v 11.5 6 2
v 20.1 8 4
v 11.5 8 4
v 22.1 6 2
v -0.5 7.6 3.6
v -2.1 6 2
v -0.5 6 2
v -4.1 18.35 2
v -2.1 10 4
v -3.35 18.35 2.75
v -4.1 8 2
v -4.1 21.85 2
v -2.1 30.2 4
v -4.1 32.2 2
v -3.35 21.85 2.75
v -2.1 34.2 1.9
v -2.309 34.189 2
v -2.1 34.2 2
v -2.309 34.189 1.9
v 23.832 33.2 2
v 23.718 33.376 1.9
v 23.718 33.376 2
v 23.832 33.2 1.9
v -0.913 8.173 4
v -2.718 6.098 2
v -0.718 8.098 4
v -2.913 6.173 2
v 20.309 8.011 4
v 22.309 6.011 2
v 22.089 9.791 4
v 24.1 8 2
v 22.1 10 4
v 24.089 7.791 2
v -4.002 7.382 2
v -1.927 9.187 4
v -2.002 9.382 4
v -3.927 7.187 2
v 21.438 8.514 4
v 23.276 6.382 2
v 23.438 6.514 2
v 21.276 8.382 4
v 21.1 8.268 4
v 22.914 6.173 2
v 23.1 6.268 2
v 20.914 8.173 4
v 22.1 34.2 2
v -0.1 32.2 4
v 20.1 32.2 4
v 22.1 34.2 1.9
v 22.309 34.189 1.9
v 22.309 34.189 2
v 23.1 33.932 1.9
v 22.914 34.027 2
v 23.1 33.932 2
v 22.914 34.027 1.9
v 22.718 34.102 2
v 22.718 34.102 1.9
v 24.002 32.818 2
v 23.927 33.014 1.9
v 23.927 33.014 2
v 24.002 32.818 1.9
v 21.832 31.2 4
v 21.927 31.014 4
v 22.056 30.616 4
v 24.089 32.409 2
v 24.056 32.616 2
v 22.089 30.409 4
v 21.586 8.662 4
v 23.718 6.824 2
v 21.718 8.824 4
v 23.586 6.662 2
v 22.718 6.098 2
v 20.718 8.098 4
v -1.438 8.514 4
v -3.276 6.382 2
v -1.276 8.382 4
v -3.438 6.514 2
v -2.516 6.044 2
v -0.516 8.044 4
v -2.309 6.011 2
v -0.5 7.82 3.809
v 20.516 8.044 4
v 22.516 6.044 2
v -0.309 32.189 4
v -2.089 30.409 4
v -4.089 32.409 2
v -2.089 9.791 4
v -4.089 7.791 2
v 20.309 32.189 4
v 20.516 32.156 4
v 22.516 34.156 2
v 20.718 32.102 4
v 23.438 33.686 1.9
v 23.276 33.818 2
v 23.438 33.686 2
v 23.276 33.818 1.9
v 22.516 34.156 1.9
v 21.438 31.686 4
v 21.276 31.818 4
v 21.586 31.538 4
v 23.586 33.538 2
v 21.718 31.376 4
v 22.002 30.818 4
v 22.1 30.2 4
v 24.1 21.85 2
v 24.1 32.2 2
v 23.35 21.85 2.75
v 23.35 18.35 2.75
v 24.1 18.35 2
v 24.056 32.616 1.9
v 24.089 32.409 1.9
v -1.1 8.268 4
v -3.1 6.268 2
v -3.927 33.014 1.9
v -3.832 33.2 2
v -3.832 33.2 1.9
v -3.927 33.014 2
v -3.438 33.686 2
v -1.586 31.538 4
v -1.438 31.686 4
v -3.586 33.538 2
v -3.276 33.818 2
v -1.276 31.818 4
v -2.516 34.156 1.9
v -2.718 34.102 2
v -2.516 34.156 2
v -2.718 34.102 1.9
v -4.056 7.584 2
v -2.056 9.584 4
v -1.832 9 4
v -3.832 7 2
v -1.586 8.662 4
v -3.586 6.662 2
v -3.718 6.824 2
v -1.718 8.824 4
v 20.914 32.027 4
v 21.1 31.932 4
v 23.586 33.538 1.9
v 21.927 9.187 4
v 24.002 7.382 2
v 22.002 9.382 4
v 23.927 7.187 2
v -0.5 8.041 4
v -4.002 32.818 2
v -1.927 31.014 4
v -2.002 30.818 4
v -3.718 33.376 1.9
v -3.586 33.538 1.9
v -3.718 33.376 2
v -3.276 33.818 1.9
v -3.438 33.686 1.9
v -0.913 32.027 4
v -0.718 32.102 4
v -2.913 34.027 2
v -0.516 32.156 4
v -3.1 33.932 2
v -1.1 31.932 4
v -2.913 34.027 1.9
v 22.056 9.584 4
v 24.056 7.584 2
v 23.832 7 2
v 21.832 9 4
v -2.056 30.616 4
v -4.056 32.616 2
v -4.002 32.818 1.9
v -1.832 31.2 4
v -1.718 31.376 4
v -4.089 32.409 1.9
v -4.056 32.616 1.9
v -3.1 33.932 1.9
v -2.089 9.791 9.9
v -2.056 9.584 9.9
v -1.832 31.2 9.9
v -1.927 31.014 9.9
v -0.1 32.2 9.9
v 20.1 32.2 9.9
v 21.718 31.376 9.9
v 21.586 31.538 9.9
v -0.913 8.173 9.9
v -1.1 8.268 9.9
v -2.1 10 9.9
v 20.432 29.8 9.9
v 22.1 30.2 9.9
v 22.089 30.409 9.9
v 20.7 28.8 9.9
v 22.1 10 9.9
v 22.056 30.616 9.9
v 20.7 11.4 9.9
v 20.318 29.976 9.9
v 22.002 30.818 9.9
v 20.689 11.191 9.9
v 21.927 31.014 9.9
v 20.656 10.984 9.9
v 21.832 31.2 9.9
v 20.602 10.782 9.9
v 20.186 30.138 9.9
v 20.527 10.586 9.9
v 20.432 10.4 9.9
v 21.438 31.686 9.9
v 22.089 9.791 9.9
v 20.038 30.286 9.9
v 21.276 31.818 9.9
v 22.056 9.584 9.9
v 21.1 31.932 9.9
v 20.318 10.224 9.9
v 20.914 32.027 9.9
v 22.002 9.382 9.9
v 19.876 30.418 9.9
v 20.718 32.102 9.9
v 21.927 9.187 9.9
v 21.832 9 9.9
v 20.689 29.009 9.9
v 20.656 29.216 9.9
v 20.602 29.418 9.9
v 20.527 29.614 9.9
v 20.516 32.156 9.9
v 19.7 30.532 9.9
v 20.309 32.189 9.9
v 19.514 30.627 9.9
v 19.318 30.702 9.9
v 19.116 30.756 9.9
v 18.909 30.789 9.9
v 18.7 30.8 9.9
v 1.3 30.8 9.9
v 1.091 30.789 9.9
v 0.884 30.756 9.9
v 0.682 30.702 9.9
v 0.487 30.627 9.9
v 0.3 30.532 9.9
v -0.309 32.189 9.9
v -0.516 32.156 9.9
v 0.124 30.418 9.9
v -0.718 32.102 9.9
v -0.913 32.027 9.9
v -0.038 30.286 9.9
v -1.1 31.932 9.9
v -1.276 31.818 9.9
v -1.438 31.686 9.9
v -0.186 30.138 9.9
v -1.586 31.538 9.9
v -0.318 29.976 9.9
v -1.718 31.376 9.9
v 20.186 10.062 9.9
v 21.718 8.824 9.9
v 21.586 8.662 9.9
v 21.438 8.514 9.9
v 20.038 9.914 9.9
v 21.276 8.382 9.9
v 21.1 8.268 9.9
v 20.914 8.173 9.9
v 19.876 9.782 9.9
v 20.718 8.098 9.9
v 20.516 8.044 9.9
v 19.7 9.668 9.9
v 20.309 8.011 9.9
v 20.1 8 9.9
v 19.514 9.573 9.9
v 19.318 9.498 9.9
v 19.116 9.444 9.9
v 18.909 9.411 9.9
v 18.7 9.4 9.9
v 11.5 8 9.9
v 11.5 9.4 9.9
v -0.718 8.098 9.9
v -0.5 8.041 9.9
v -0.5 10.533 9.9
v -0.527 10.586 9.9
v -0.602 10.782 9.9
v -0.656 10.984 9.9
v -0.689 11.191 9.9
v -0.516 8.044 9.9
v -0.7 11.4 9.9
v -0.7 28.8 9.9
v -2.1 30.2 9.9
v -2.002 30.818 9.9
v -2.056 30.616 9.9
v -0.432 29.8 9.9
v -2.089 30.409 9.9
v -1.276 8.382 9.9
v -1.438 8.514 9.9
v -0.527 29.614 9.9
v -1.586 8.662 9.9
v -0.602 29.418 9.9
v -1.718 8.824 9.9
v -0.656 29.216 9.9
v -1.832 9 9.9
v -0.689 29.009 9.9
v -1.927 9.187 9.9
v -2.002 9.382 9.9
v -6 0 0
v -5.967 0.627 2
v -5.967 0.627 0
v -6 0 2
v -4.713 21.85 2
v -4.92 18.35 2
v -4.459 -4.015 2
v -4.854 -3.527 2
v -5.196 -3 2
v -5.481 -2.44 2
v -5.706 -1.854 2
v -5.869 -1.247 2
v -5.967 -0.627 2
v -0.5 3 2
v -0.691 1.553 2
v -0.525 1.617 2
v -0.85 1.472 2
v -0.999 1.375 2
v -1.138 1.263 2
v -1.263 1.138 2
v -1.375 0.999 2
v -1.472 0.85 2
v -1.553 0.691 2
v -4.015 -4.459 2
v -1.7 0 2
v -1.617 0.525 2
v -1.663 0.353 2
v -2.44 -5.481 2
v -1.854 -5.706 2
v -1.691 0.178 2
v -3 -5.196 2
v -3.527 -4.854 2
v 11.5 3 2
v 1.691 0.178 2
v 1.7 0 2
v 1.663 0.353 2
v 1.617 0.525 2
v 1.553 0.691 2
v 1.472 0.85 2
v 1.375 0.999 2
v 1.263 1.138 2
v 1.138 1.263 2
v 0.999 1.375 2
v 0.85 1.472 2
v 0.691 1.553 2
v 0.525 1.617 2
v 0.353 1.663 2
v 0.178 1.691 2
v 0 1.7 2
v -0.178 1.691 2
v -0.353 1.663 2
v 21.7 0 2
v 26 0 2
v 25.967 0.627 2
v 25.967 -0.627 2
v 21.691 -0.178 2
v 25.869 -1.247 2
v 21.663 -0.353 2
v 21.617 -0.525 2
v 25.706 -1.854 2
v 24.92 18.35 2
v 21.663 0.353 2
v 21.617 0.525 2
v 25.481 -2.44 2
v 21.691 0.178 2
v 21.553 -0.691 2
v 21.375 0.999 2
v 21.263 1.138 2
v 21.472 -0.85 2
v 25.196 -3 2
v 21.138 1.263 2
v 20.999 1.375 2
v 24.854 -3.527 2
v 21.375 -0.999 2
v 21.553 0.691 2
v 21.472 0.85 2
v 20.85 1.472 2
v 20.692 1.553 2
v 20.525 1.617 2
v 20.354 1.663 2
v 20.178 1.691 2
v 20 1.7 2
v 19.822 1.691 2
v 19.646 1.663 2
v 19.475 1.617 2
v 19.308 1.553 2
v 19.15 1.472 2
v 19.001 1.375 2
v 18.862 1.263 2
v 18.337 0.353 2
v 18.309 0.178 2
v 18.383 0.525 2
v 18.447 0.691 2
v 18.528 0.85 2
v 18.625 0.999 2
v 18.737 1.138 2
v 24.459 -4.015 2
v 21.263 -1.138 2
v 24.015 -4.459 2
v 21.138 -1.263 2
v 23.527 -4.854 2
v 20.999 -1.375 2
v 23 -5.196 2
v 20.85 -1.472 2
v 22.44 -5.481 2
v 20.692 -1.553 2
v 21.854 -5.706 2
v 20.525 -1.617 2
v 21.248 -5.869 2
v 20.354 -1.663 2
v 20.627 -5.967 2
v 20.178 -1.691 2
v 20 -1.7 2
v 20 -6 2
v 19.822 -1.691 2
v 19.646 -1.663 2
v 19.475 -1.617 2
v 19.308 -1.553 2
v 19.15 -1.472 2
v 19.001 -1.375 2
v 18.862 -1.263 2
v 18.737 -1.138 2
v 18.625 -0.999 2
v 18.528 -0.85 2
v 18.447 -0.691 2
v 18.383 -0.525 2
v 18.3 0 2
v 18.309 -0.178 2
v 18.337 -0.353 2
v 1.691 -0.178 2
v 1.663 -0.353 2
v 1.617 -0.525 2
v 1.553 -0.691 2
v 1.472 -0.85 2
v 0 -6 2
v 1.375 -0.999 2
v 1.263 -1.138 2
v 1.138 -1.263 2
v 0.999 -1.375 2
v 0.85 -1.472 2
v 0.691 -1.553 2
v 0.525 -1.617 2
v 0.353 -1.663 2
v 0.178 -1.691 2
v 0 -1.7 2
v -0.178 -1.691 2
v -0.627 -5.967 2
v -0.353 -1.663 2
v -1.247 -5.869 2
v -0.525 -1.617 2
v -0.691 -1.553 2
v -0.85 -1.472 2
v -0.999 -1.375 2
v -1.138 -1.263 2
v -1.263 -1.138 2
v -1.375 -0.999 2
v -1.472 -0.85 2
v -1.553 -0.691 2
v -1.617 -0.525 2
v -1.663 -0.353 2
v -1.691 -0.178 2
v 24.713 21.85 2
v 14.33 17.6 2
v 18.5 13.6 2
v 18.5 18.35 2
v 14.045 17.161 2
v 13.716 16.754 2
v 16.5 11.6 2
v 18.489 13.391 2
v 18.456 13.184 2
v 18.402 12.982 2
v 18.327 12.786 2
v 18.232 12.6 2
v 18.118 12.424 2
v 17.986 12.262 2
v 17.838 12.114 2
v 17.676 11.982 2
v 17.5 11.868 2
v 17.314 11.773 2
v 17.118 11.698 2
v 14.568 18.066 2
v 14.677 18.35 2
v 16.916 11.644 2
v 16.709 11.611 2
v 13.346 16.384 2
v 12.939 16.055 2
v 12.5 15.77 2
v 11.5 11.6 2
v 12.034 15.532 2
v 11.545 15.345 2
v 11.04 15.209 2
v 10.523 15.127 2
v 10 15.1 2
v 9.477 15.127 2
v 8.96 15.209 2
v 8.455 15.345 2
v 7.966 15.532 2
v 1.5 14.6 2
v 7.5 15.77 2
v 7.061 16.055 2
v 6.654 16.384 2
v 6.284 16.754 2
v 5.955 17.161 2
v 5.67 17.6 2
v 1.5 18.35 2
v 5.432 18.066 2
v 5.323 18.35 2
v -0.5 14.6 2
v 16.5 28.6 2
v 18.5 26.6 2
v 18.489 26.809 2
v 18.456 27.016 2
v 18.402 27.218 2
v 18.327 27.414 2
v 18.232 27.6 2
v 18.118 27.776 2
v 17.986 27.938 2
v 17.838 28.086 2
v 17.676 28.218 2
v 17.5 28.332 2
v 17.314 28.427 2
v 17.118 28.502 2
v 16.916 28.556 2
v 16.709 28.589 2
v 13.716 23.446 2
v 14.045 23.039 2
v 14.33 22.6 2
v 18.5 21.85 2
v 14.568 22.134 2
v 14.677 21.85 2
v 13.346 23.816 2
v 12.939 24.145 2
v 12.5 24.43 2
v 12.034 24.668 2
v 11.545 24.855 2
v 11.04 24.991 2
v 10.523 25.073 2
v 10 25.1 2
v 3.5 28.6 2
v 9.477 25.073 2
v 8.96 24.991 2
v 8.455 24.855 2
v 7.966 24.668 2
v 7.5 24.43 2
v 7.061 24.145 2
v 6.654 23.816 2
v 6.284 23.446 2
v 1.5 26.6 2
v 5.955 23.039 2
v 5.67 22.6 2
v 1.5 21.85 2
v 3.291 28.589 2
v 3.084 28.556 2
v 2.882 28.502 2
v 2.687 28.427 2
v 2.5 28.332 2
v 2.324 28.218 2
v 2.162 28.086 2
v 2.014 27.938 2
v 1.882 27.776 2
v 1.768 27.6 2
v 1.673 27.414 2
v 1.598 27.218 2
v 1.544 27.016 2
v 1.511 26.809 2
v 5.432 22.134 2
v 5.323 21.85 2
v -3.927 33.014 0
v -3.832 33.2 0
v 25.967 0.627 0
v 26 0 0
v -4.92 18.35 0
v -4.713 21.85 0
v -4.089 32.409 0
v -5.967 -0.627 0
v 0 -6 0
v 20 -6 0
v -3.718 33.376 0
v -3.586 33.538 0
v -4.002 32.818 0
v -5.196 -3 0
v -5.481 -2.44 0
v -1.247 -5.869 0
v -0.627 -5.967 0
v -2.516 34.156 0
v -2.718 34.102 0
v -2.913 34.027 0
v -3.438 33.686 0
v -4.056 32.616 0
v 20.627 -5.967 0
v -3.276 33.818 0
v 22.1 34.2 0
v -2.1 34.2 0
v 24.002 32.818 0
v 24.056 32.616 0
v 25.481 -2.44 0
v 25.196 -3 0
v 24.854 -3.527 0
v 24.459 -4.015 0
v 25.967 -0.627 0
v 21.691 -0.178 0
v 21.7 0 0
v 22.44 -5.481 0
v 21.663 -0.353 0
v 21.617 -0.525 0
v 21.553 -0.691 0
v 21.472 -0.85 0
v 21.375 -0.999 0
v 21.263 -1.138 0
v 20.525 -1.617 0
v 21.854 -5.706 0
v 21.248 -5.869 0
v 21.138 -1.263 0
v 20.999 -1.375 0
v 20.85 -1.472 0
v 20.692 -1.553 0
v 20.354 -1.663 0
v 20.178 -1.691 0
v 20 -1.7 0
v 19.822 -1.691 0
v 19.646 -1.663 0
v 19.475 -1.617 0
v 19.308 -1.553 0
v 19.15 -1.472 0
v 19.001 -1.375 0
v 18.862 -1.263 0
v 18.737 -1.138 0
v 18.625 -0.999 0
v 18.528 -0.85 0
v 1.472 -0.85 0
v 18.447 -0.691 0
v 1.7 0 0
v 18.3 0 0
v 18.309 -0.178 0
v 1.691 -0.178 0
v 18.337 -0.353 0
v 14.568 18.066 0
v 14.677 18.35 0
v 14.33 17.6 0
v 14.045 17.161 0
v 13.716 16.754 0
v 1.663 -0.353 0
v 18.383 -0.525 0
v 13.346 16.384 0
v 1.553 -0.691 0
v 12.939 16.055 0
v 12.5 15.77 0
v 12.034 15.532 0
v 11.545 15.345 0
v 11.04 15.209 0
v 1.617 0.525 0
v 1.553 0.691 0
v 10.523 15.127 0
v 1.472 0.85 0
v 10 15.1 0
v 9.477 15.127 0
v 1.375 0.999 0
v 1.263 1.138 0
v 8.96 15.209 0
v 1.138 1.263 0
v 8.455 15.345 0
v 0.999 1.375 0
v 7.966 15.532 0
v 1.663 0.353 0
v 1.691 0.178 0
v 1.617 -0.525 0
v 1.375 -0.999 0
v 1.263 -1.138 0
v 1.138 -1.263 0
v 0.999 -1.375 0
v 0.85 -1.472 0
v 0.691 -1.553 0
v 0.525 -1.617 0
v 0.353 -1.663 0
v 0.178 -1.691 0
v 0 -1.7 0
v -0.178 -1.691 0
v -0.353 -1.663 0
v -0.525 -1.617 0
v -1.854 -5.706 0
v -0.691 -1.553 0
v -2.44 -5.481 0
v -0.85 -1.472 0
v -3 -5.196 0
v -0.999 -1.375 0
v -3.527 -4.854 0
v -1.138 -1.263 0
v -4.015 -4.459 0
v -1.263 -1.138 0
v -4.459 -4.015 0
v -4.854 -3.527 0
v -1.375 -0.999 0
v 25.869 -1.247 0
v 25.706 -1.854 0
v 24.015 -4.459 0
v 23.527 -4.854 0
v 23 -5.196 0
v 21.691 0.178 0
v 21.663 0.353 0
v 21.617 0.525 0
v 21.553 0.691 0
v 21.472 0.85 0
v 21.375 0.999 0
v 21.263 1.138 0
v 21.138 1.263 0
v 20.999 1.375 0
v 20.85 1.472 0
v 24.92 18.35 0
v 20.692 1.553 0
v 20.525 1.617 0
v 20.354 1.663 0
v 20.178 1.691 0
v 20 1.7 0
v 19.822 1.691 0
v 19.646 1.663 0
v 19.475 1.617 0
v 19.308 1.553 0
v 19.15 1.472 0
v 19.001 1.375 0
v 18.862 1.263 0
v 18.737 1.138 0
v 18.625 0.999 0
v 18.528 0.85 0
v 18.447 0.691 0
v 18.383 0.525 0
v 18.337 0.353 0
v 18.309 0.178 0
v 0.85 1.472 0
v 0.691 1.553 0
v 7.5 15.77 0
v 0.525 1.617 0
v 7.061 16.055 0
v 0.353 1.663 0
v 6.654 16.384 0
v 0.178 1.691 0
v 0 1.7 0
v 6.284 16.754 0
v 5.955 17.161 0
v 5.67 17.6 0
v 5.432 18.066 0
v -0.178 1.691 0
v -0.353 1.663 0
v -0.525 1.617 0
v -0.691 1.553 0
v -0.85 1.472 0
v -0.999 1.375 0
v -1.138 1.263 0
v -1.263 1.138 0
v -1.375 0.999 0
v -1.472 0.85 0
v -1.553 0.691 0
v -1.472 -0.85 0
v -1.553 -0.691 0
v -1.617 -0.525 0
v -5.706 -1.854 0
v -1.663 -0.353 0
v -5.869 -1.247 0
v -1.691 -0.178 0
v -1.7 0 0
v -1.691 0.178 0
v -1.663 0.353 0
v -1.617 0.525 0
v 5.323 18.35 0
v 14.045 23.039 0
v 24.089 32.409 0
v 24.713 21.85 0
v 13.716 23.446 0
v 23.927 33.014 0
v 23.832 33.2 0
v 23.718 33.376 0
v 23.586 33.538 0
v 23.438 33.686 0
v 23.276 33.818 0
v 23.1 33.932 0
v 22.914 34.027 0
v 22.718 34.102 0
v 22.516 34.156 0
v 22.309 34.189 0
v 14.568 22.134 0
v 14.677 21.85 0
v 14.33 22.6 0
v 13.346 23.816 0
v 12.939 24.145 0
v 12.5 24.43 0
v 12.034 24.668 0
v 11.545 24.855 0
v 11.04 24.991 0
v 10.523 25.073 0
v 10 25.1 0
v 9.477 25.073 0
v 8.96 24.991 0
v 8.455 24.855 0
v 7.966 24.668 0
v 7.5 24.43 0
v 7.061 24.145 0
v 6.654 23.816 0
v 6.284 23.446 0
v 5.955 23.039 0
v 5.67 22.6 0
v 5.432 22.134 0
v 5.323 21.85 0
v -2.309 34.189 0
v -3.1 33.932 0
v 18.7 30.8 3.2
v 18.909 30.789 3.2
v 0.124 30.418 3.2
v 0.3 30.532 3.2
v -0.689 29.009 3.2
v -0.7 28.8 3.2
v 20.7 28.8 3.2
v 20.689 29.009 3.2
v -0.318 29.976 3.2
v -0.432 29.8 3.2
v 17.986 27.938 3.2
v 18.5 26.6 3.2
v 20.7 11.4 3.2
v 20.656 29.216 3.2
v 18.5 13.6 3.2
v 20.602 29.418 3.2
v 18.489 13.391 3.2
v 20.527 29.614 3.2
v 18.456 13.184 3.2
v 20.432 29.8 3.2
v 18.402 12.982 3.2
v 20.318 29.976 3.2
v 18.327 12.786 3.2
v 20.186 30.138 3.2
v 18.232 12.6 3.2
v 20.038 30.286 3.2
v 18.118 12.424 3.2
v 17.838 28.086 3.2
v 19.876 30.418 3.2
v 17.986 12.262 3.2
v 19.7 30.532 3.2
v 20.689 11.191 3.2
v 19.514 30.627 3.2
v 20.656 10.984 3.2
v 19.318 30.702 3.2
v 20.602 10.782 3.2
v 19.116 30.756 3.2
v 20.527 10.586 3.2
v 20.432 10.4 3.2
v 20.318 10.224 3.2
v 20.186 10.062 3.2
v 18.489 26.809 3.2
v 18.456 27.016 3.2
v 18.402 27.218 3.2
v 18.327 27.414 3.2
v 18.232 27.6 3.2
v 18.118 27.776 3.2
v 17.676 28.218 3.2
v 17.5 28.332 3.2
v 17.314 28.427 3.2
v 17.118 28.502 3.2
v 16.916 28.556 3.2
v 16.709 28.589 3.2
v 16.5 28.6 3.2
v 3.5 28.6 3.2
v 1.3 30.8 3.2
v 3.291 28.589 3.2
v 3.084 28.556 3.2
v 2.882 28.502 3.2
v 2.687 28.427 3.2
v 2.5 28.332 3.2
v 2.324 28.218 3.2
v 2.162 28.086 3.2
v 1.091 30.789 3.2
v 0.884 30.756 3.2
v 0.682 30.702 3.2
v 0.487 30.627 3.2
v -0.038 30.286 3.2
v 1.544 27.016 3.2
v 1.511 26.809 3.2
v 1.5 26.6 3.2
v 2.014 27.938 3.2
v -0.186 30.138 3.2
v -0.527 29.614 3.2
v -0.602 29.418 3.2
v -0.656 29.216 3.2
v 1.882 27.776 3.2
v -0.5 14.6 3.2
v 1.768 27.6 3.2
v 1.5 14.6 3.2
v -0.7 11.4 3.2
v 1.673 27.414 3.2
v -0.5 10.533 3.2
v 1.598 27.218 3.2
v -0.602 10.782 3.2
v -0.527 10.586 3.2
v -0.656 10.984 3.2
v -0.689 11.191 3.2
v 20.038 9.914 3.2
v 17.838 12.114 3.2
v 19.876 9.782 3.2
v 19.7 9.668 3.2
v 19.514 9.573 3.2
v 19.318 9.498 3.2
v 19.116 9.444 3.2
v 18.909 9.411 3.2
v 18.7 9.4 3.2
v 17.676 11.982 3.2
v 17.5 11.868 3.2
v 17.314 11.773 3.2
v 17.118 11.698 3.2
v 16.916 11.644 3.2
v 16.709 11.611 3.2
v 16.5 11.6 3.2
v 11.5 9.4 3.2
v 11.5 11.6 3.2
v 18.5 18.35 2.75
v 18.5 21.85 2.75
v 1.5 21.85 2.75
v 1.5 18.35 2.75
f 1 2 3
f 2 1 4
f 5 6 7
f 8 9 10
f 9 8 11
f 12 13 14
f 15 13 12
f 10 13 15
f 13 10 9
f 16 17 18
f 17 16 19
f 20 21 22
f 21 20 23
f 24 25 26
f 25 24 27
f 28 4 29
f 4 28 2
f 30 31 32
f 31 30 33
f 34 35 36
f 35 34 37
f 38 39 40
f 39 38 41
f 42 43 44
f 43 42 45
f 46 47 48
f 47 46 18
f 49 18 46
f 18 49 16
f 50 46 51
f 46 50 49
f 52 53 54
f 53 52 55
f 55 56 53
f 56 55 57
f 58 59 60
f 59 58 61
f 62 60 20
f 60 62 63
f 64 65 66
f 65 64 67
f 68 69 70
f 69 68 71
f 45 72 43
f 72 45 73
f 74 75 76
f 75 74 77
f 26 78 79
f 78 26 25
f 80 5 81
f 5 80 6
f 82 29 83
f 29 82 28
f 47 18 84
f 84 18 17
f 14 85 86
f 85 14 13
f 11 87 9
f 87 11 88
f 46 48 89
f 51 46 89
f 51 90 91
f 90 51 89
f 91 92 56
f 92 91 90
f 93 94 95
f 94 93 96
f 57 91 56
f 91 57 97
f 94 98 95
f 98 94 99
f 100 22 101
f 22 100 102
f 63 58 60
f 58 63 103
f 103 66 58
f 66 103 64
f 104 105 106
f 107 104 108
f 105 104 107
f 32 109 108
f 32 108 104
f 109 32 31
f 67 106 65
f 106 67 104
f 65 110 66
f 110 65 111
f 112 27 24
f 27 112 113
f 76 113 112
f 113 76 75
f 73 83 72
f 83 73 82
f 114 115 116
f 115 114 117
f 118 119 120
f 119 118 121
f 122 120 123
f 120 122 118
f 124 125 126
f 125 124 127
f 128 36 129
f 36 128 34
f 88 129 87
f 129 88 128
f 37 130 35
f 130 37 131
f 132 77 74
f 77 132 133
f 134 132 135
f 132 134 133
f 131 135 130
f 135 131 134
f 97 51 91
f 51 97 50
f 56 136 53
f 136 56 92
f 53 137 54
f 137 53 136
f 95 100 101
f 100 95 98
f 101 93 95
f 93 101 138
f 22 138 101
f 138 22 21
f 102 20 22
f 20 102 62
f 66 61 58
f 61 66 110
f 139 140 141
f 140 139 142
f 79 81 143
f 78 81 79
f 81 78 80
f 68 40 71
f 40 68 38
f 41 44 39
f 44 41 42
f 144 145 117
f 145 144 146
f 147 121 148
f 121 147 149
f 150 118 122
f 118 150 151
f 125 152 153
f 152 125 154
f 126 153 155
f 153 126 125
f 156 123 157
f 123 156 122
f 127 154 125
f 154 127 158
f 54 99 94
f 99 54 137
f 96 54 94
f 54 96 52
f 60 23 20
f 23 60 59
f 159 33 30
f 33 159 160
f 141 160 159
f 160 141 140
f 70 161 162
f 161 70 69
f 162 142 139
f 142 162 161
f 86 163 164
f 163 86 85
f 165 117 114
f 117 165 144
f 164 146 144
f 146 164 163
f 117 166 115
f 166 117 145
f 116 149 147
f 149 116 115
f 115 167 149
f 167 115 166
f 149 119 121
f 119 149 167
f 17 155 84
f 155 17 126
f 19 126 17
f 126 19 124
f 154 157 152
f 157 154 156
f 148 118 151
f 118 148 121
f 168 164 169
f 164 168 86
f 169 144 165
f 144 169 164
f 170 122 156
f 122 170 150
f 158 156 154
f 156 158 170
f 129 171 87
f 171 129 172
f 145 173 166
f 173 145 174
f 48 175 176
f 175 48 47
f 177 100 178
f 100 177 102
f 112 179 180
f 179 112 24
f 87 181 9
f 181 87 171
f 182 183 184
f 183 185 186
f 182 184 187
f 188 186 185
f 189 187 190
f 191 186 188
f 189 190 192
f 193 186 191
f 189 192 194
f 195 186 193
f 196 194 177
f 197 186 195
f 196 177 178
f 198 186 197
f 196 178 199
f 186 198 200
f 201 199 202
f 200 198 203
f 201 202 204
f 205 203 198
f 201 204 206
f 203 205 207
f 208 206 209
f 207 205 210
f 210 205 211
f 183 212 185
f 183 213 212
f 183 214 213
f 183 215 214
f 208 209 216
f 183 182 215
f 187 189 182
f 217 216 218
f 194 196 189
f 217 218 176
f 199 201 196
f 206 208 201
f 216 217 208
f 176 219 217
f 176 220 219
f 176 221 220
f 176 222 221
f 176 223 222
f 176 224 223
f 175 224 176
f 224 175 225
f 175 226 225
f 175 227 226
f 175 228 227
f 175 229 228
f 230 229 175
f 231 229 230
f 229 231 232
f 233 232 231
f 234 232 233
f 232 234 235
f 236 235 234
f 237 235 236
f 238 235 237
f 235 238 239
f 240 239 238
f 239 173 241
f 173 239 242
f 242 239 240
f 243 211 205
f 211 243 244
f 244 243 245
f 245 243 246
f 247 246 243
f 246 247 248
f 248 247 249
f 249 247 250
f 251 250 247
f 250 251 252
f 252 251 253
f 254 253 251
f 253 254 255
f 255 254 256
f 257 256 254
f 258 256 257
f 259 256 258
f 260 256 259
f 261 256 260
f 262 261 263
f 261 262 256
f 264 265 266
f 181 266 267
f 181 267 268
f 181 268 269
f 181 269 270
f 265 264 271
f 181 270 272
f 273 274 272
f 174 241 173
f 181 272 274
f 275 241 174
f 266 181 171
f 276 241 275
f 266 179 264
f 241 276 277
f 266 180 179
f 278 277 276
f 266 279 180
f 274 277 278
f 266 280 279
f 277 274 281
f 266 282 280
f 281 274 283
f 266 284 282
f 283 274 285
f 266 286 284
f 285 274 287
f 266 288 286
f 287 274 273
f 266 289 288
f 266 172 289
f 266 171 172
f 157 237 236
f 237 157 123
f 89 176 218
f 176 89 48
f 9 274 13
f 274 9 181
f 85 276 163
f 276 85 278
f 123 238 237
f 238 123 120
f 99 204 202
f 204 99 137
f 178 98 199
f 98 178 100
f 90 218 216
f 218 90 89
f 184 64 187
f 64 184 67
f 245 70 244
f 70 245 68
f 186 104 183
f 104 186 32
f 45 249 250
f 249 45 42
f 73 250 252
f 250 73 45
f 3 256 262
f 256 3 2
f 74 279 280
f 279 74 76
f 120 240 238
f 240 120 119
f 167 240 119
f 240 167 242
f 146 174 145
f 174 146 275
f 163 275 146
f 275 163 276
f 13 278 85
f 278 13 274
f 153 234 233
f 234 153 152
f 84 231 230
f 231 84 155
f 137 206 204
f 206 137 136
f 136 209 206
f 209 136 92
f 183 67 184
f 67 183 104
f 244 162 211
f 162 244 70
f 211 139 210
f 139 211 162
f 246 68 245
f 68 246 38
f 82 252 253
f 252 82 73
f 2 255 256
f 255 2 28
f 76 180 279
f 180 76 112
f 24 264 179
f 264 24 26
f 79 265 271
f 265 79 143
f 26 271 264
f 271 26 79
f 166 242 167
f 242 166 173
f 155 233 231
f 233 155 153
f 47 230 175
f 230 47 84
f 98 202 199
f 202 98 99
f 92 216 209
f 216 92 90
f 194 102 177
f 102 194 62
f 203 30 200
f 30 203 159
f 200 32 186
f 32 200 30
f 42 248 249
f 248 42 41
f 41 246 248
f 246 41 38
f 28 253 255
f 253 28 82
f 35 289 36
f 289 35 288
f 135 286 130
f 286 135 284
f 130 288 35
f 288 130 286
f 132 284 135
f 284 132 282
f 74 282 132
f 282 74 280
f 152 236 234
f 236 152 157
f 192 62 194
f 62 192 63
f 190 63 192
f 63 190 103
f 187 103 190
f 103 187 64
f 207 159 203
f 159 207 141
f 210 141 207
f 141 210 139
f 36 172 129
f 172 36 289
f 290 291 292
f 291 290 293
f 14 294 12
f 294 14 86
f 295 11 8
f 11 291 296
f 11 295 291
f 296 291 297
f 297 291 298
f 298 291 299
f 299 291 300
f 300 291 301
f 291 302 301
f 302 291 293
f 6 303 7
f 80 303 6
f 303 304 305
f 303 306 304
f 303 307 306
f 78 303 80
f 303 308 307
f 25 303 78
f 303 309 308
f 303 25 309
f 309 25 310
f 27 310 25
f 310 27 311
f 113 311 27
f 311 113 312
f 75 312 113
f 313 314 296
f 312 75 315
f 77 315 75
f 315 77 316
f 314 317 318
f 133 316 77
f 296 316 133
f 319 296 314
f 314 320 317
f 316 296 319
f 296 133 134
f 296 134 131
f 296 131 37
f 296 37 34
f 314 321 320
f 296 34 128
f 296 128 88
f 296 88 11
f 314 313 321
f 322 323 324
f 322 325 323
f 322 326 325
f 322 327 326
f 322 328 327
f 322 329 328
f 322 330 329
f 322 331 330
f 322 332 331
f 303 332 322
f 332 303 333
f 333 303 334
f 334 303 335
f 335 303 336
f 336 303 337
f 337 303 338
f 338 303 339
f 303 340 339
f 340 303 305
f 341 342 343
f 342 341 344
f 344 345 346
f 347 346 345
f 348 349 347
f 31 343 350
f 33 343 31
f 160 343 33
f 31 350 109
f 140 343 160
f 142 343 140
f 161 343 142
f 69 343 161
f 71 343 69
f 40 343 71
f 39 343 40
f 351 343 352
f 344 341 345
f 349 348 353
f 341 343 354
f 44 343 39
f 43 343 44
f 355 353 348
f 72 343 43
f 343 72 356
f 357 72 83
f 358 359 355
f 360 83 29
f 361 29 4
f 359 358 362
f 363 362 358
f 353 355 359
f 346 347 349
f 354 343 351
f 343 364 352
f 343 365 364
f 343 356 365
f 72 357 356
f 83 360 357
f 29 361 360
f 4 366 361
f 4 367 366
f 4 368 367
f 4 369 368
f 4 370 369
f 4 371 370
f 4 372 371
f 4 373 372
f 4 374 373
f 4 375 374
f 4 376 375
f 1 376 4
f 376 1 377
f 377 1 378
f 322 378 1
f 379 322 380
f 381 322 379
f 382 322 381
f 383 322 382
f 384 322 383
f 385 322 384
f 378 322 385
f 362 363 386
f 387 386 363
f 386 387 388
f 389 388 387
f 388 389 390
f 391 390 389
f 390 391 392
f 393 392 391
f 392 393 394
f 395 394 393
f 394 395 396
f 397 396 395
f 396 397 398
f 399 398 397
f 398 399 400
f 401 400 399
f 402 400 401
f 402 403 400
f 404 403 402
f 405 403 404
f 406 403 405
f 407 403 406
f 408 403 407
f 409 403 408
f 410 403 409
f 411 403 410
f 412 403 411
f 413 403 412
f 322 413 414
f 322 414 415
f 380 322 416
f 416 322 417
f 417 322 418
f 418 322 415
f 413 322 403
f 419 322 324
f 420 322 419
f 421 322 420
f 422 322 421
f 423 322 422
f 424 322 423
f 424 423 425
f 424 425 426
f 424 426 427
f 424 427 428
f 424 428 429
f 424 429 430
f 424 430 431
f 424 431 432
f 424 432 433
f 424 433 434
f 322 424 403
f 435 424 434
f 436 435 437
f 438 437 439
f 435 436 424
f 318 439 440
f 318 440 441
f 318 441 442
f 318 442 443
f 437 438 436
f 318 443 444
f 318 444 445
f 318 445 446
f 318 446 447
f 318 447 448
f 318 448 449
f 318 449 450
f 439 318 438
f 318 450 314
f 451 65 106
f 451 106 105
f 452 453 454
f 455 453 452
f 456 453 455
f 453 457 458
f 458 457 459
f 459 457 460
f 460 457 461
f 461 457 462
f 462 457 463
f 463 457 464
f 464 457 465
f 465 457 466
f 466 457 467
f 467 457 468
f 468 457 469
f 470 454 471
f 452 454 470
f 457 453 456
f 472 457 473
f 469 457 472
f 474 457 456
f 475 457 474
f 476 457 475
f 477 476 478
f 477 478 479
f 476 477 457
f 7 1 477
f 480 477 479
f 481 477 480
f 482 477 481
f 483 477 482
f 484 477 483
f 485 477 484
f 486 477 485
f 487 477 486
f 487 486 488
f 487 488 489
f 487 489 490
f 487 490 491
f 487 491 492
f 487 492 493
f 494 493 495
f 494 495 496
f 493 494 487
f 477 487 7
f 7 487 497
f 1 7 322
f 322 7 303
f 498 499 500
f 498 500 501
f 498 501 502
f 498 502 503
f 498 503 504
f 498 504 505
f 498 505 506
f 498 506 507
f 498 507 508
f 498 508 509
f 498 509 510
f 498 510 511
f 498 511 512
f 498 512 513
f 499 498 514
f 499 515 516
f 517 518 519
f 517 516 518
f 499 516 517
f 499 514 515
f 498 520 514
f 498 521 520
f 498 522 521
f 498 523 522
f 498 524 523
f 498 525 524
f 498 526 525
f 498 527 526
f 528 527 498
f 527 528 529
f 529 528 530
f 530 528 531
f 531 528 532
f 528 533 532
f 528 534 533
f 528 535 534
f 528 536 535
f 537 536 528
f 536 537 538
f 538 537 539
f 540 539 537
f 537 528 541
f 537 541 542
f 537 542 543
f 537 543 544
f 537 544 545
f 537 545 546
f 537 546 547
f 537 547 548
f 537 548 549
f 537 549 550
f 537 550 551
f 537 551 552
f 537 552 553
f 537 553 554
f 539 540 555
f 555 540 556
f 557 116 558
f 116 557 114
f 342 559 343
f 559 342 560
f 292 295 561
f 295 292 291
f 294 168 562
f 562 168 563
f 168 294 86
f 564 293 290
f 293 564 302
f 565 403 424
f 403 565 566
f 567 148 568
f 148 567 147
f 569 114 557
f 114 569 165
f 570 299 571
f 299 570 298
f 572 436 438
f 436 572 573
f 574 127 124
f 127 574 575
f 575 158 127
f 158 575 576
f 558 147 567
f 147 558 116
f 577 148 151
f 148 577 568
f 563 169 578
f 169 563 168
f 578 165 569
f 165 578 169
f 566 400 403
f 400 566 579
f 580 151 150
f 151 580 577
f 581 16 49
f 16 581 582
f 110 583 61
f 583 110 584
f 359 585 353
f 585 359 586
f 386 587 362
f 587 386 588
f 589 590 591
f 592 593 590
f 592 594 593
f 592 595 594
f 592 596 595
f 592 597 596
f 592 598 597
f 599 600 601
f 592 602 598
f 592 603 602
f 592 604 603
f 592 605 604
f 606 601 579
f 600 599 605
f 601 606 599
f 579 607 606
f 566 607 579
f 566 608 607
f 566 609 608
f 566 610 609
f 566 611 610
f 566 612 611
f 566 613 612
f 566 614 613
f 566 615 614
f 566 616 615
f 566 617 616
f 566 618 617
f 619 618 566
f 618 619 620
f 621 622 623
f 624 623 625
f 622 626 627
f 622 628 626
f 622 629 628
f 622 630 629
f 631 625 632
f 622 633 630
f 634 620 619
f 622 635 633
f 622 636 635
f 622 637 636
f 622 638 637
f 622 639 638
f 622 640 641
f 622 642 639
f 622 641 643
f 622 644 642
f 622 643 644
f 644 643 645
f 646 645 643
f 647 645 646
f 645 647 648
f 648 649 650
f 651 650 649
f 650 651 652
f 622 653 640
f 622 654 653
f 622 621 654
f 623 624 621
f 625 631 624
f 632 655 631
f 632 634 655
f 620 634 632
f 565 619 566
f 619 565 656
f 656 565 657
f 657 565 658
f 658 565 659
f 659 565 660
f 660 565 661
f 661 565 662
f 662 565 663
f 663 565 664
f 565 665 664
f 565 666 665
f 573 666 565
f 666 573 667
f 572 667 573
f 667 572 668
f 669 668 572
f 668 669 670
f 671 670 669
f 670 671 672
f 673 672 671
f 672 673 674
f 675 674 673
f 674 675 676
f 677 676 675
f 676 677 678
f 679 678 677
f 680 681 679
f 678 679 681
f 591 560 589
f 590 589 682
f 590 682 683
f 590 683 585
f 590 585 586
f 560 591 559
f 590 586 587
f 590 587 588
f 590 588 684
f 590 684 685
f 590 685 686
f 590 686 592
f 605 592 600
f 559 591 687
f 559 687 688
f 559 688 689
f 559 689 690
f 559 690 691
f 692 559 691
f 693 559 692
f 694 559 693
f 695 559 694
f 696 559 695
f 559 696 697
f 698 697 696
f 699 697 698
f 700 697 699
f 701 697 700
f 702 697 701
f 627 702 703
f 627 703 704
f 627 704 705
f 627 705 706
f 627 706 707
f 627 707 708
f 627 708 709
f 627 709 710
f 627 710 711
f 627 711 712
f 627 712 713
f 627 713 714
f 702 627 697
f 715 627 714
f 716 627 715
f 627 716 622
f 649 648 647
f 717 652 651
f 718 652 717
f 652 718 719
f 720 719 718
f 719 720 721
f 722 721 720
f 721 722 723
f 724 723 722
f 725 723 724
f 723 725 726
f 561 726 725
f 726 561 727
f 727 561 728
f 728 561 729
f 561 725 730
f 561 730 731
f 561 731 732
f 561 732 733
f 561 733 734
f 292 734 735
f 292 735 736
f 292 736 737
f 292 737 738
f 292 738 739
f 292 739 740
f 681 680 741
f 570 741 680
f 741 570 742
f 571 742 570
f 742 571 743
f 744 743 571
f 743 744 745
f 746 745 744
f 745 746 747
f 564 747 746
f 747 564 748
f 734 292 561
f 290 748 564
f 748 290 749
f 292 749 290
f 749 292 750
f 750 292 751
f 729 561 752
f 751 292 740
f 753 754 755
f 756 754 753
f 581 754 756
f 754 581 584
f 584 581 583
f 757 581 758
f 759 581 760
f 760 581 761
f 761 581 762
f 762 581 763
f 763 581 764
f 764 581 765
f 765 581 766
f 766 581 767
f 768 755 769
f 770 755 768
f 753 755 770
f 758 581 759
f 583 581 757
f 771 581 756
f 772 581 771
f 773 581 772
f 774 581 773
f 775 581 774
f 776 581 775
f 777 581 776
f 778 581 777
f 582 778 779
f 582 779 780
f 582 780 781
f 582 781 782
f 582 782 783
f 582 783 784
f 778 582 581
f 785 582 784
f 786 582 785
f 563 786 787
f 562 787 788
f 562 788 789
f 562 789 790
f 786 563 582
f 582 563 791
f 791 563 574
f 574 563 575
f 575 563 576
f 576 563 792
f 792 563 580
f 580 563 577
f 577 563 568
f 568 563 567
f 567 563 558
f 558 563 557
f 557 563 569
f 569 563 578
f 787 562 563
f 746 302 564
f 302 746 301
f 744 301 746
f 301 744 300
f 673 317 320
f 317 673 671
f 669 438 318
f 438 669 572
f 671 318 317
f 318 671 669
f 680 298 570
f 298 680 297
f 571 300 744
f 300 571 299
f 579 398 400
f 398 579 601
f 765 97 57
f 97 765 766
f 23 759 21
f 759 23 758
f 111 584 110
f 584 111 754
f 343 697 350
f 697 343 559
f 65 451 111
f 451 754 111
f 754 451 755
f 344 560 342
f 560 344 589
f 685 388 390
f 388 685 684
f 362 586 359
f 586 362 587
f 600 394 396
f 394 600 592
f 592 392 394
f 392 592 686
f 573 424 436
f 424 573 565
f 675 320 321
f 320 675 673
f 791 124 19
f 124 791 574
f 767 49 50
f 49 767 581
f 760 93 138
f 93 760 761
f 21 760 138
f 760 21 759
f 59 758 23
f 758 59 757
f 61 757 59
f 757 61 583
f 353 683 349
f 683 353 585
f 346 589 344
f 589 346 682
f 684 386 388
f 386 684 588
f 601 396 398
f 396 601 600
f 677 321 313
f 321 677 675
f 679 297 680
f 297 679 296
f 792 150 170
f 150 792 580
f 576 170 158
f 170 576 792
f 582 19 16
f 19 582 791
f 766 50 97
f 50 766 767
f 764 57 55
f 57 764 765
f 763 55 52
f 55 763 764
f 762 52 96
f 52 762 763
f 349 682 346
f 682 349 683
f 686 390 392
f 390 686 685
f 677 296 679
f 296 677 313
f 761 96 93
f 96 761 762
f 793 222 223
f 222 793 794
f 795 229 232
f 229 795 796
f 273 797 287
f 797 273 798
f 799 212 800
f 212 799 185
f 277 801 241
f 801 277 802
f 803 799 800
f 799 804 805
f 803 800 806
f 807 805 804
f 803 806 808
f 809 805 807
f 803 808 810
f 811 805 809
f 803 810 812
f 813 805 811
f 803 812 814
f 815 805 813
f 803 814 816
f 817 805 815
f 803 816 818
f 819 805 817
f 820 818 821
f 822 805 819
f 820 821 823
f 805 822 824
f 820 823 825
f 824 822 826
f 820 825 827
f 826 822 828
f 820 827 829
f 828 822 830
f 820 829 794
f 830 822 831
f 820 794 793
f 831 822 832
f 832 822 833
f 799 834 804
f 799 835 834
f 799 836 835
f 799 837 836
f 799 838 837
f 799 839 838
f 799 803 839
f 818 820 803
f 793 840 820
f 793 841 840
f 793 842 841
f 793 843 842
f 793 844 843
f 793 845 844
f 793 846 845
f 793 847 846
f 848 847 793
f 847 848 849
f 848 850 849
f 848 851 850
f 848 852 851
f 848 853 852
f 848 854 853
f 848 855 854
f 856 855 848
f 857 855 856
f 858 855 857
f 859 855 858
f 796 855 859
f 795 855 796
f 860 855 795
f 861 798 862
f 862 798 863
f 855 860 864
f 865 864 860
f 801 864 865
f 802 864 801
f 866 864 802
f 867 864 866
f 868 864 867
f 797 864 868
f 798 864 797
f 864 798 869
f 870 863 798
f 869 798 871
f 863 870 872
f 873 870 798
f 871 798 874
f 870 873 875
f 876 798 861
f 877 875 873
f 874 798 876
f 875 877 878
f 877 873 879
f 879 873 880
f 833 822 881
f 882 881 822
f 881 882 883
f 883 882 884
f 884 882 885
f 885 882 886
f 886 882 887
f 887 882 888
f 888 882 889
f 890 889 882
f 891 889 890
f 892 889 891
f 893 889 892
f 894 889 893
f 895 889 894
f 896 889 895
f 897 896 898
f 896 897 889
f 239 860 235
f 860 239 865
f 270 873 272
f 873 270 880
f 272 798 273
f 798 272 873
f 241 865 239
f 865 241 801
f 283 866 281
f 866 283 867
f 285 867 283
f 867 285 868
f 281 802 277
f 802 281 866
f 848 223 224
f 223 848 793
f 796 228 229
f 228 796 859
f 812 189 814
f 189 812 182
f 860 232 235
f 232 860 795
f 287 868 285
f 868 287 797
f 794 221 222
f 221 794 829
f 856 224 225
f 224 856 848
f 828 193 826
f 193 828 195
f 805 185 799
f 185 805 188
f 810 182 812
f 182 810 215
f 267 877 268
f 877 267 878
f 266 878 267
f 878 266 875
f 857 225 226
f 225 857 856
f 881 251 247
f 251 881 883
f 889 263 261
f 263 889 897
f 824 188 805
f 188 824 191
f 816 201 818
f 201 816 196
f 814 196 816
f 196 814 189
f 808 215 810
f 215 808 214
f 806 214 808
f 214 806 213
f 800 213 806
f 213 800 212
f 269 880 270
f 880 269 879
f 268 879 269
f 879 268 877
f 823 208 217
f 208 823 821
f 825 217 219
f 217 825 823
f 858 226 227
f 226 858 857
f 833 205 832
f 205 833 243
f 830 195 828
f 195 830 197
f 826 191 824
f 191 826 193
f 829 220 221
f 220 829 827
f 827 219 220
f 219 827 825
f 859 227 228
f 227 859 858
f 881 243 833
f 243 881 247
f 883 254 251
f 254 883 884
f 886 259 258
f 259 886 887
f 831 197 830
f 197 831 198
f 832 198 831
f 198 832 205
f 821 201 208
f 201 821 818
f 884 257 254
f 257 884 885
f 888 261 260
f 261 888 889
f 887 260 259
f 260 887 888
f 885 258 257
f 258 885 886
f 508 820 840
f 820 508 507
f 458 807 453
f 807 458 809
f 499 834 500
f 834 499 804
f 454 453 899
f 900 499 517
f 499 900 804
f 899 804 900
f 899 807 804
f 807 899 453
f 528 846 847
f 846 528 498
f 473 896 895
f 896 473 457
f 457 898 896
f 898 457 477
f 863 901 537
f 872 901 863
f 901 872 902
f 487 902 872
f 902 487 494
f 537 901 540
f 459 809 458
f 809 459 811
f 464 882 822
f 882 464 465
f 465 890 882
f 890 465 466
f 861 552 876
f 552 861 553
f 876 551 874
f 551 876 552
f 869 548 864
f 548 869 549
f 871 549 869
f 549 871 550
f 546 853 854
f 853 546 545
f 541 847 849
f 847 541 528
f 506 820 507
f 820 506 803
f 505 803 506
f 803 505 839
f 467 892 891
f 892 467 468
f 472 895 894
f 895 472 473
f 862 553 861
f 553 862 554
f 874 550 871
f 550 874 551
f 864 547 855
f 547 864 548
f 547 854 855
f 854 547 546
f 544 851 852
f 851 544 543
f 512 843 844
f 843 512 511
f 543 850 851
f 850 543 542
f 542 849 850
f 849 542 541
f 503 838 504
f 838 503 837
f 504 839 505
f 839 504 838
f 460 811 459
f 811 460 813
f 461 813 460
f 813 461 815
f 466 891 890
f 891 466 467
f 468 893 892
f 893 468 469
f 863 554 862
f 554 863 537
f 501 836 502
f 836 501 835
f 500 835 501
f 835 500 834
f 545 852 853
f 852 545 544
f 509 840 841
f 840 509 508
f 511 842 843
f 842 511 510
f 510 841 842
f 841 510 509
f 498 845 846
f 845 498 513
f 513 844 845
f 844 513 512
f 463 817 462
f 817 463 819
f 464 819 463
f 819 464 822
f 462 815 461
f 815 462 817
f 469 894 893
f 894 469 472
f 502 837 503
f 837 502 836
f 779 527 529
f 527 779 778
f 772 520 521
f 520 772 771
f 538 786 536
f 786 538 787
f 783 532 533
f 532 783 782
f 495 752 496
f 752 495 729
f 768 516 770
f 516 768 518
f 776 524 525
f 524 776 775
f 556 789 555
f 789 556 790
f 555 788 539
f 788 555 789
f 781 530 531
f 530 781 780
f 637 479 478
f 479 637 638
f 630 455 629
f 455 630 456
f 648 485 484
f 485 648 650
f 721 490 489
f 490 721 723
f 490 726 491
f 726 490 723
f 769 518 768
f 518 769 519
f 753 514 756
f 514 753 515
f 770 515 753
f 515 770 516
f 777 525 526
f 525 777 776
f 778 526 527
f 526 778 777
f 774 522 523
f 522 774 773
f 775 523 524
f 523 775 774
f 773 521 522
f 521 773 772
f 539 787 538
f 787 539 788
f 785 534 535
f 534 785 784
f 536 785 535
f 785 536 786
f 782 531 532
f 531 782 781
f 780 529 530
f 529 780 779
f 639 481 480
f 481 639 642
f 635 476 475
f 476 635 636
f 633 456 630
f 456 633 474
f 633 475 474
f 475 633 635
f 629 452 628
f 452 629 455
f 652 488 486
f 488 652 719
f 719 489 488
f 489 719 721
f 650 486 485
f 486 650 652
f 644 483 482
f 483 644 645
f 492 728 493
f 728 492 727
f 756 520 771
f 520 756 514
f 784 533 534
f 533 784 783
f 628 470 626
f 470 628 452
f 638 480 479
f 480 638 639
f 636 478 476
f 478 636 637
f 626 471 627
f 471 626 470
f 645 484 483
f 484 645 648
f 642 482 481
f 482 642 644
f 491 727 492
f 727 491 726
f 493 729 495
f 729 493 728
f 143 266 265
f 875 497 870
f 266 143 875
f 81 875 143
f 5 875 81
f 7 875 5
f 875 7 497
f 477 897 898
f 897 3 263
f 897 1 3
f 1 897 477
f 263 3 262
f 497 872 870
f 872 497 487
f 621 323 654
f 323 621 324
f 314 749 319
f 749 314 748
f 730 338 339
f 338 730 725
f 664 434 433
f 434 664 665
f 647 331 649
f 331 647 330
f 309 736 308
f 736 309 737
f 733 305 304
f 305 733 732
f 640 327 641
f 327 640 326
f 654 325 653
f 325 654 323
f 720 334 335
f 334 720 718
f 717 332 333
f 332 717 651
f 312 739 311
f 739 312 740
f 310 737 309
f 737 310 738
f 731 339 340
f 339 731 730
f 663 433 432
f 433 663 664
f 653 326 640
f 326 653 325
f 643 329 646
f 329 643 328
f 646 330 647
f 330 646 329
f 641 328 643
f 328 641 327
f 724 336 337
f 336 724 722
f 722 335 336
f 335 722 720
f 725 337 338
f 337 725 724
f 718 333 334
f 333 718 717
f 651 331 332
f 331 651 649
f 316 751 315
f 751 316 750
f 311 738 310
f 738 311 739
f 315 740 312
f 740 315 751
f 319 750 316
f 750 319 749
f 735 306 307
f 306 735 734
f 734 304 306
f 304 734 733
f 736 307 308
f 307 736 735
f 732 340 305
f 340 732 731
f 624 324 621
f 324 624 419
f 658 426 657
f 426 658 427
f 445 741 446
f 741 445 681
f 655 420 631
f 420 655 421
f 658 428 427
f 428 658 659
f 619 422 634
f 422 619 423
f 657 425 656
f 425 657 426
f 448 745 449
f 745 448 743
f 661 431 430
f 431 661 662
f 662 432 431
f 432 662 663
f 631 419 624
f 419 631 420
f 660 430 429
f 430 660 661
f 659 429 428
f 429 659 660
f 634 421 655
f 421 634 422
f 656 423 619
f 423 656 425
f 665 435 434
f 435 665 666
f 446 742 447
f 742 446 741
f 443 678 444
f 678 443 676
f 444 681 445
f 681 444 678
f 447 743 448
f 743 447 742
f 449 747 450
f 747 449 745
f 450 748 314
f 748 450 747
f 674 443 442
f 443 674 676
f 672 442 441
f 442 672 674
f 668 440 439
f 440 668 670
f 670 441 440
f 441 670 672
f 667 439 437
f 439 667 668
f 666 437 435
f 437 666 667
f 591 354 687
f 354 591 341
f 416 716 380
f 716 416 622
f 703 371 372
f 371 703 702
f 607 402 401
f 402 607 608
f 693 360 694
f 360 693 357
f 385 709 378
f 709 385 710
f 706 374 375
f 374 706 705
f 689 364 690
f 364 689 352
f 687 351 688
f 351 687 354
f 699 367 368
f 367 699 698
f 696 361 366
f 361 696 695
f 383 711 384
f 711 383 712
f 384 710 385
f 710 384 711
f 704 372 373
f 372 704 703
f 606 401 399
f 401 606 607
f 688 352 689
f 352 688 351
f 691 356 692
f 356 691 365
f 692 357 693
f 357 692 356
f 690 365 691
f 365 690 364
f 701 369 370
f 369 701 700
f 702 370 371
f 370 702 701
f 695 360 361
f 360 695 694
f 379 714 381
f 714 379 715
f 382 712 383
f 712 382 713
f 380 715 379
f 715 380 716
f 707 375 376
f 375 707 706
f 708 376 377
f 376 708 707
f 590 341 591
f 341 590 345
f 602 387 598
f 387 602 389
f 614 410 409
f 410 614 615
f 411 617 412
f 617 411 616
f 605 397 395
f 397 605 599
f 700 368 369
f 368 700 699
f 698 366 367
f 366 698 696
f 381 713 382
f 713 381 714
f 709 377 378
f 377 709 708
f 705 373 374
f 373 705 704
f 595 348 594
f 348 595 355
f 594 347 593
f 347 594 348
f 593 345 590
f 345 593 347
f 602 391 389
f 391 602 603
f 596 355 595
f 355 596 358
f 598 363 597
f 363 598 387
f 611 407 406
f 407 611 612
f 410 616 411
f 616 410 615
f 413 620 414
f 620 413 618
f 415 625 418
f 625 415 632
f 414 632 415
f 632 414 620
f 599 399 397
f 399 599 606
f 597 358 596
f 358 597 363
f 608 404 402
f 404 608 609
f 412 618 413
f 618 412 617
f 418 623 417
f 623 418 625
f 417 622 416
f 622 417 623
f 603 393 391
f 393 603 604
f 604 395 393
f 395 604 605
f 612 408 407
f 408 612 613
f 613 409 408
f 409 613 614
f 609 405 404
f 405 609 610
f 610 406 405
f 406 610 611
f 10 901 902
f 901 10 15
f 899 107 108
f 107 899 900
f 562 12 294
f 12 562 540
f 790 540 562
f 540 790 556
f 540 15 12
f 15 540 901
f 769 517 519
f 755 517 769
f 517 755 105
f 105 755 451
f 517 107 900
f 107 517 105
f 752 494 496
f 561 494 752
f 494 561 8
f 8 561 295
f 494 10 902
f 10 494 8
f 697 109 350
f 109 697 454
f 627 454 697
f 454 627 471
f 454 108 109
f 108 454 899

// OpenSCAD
// ============================================================
// PROJECT: FPV COMPONENT LIBRARY - GPS MOUNT
// COMPONENT: HGLRC M100-5883 (21x21x8.02mm)
// VERSION: 2.2 (Refactored Chamfer + Full Documentation)
// ============================================================

// --- USER ADJUSTABLE SETTINGS ---
hole_spacing    = 20;    // Distance between centers of frame screws (Standard: 20-30mm)
hole_dia        = 3.4;   // Screw hole size (3.4mm gives a snug fit for M3 in TPU)
base_thickness  = 2;   // Thickness of the mounting plate
base_width      = 12.0;  // Diameter of the circular pads around the screws
corner_radius   = 2.0;   // Curvature of the corners (higher is smoother/stronger)

// --- GPS UNIT DIMENSIONS ---
gps_w = 21;              // Width of the GPS unit
gps_l = 21;              // Length of the GPS unit
gps_h = 8.0;            // Height of the GPS unit
wall  = 1.6;             // Wall thickness (1.6mm = 4 perimeters with 0.4mm nozzle)

// --- UTILITY & CLEARANCE SETTINGS ---
zt_width     = 3.5;      // Width of the zip-tie channel
zt_depth     = 1.5;      // Depth the zip-tie sits below the GPS floor
wire_width   = 12;      // Width of the opening for the GPS wires
wire_offset  = -4.5;      // Shift the wire exit right (+) or left (-) to match pads
nob_height   = 1.2;      // Height of internal corner pillars (creates magnetic air gap)
chamfer_size = 2.0;      // Vertical and horizontal size of the base reinforcement

// Dynamic calculation to ensure GPS box doesn't overlap screw heads
gps_offset_y = (base_width/2) + (gps_l/2) + wall + 2; 

$fn = 60;                // Smoothness of curves (60 is high quality)

// --- THE MASTER DIFFERENCE ---
// In OpenSCAD, 'difference' subtracts everything below the first object.
difference() {
    
    // STEP 1: ADD ALL SOLID GEOMETRY (What we want to print)
    union() {
        // Create the flat mounting footprint
        unified_base_solid();
        
        // Add the vertical GPS box structure (lowered slightly to fuse with base)
        translate([hole_spacing/2, gps_offset_y, base_thickness - 0.1])
            gps_outer_shell_solid();
            
        // Add the four internal corner pillars (Nobs)
        // These stay even after the cavity is cut out
        translate([hole_spacing/2, gps_offset_y, base_thickness - 0.1])
            for(x=[-1,1], y=[-1,1])
                translate([x*(gps_w/2 - 2), y*(gps_l/2 - 2), 0])
                    cylinder(h=nob_height + 0.1, d=3);
    }

    // STEP 2: SUBTRACT THE INTERNAL VOIDS (The "Holes")
    
    // Main GPS cavity (starts at the top of the pillars)
    translate([hole_spacing/2, gps_offset_y, base_thickness + nob_height])
        rounded_rect(gps_w + 0.4, gps_l + 0.4, gps_h + 5);
    
    // Floor relief (clears center space between pillars so zip-tie fits)
    translate([hole_spacing/2, gps_offset_y, base_thickness])
        rounded_rect(gps_w - 4, gps_l - 4, nob_height + 0.1);

    // Ejection hole (lets you push the GPS out from the bottom with a tool)
    translate([hole_spacing/2, gps_offset_y, -1])
        cylinder(h=base_thickness + 2, d=10);

    // Wire exit slot (extended forward to clear the chamfer flared base)
    translate([hole_spacing/2 + wire_offset - (wire_width/2), gps_offset_y - (gps_l/2) - wall - 5, base_thickness])
        cube([wire_width, wall + 10, gps_h + 1]);

    // STEP 3: FINAL HARDWARE CUTS (Screws and Zip-Ties)
    
    // Screw holes for frame attachment
    translate([0, 0, -1]) cylinder(h=base_thickness + 2, d=hole_dia);
    translate([hole_spacing, 0, -1]) cylinder(h=base_thickness + 2, d=hole_dia);

    // Zip-tie Channel (Trough in floor and windows in walls combined)
    // We use a double-depth cut to ensure no surface artifacts remain
    translate([hole_spacing/2, gps_offset_y, base_thickness + (zt_depth/2) - zt_depth])
        cube([gps_w + (wall*2) + 10, zt_width, zt_depth * 2], center=true);
}

// --- MODULES (The Building Blocks) ---

module unified_base_solid() {
    // Connects the screw pads and the GPS footprint into one solid slab.
    // We include the chamfer_size in the footprint so the base supports the flare.
    hull() {
        translate([0, 0, 0]) cylinder(h=base_thickness, d=base_width);
        translate([hole_spacing, 0, 0]) cylinder(h=base_thickness, d=base_width);
        translate([hole_spacing/2, gps_offset_y, 0])
            rounded_rect(gps_w + (wall*2) + (chamfer_size*2), gps_l + (wall*2) + (chamfer_size*2), base_thickness);
    }
}

module gps_outer_shell_solid() {
    // Generates the vertical box with a clean 45-degree chamfer at the bottom.
    // 'hull' between two sizes creates a mathematically perfect slanted surface.
    hull() {
        // Wide footprint at the very bottom
        rounded_rect(gps_w + (wall*2) + (chamfer_size*2), gps_l + (wall*2) + (chamfer_size*2), 0.1);
        
        // Target wall thickness at the top of the chamfer height
        translate([0, 0, chamfer_size])
            rounded_rect(gps_w + (wall*2), gps_l + (wall*2), 0.1);
    }
    // Main vertical wall volume extending to full height
    rounded_rect(gps_w + (wall*2), gps_l + (wall*2), gps_h);
}

module rounded_rect(w, l, h) {
    // Helper tool to create boxes with smooth corners using 'hull' on 4 cylinders.
    hull() {
        for(x=[-1,1], y=[-1,1])
            translate([x*(w/2 - corner_radius), y*(l/2 - corner_radius), 0])
                cylinder(h=h, r=corner_radius);
    }
}
